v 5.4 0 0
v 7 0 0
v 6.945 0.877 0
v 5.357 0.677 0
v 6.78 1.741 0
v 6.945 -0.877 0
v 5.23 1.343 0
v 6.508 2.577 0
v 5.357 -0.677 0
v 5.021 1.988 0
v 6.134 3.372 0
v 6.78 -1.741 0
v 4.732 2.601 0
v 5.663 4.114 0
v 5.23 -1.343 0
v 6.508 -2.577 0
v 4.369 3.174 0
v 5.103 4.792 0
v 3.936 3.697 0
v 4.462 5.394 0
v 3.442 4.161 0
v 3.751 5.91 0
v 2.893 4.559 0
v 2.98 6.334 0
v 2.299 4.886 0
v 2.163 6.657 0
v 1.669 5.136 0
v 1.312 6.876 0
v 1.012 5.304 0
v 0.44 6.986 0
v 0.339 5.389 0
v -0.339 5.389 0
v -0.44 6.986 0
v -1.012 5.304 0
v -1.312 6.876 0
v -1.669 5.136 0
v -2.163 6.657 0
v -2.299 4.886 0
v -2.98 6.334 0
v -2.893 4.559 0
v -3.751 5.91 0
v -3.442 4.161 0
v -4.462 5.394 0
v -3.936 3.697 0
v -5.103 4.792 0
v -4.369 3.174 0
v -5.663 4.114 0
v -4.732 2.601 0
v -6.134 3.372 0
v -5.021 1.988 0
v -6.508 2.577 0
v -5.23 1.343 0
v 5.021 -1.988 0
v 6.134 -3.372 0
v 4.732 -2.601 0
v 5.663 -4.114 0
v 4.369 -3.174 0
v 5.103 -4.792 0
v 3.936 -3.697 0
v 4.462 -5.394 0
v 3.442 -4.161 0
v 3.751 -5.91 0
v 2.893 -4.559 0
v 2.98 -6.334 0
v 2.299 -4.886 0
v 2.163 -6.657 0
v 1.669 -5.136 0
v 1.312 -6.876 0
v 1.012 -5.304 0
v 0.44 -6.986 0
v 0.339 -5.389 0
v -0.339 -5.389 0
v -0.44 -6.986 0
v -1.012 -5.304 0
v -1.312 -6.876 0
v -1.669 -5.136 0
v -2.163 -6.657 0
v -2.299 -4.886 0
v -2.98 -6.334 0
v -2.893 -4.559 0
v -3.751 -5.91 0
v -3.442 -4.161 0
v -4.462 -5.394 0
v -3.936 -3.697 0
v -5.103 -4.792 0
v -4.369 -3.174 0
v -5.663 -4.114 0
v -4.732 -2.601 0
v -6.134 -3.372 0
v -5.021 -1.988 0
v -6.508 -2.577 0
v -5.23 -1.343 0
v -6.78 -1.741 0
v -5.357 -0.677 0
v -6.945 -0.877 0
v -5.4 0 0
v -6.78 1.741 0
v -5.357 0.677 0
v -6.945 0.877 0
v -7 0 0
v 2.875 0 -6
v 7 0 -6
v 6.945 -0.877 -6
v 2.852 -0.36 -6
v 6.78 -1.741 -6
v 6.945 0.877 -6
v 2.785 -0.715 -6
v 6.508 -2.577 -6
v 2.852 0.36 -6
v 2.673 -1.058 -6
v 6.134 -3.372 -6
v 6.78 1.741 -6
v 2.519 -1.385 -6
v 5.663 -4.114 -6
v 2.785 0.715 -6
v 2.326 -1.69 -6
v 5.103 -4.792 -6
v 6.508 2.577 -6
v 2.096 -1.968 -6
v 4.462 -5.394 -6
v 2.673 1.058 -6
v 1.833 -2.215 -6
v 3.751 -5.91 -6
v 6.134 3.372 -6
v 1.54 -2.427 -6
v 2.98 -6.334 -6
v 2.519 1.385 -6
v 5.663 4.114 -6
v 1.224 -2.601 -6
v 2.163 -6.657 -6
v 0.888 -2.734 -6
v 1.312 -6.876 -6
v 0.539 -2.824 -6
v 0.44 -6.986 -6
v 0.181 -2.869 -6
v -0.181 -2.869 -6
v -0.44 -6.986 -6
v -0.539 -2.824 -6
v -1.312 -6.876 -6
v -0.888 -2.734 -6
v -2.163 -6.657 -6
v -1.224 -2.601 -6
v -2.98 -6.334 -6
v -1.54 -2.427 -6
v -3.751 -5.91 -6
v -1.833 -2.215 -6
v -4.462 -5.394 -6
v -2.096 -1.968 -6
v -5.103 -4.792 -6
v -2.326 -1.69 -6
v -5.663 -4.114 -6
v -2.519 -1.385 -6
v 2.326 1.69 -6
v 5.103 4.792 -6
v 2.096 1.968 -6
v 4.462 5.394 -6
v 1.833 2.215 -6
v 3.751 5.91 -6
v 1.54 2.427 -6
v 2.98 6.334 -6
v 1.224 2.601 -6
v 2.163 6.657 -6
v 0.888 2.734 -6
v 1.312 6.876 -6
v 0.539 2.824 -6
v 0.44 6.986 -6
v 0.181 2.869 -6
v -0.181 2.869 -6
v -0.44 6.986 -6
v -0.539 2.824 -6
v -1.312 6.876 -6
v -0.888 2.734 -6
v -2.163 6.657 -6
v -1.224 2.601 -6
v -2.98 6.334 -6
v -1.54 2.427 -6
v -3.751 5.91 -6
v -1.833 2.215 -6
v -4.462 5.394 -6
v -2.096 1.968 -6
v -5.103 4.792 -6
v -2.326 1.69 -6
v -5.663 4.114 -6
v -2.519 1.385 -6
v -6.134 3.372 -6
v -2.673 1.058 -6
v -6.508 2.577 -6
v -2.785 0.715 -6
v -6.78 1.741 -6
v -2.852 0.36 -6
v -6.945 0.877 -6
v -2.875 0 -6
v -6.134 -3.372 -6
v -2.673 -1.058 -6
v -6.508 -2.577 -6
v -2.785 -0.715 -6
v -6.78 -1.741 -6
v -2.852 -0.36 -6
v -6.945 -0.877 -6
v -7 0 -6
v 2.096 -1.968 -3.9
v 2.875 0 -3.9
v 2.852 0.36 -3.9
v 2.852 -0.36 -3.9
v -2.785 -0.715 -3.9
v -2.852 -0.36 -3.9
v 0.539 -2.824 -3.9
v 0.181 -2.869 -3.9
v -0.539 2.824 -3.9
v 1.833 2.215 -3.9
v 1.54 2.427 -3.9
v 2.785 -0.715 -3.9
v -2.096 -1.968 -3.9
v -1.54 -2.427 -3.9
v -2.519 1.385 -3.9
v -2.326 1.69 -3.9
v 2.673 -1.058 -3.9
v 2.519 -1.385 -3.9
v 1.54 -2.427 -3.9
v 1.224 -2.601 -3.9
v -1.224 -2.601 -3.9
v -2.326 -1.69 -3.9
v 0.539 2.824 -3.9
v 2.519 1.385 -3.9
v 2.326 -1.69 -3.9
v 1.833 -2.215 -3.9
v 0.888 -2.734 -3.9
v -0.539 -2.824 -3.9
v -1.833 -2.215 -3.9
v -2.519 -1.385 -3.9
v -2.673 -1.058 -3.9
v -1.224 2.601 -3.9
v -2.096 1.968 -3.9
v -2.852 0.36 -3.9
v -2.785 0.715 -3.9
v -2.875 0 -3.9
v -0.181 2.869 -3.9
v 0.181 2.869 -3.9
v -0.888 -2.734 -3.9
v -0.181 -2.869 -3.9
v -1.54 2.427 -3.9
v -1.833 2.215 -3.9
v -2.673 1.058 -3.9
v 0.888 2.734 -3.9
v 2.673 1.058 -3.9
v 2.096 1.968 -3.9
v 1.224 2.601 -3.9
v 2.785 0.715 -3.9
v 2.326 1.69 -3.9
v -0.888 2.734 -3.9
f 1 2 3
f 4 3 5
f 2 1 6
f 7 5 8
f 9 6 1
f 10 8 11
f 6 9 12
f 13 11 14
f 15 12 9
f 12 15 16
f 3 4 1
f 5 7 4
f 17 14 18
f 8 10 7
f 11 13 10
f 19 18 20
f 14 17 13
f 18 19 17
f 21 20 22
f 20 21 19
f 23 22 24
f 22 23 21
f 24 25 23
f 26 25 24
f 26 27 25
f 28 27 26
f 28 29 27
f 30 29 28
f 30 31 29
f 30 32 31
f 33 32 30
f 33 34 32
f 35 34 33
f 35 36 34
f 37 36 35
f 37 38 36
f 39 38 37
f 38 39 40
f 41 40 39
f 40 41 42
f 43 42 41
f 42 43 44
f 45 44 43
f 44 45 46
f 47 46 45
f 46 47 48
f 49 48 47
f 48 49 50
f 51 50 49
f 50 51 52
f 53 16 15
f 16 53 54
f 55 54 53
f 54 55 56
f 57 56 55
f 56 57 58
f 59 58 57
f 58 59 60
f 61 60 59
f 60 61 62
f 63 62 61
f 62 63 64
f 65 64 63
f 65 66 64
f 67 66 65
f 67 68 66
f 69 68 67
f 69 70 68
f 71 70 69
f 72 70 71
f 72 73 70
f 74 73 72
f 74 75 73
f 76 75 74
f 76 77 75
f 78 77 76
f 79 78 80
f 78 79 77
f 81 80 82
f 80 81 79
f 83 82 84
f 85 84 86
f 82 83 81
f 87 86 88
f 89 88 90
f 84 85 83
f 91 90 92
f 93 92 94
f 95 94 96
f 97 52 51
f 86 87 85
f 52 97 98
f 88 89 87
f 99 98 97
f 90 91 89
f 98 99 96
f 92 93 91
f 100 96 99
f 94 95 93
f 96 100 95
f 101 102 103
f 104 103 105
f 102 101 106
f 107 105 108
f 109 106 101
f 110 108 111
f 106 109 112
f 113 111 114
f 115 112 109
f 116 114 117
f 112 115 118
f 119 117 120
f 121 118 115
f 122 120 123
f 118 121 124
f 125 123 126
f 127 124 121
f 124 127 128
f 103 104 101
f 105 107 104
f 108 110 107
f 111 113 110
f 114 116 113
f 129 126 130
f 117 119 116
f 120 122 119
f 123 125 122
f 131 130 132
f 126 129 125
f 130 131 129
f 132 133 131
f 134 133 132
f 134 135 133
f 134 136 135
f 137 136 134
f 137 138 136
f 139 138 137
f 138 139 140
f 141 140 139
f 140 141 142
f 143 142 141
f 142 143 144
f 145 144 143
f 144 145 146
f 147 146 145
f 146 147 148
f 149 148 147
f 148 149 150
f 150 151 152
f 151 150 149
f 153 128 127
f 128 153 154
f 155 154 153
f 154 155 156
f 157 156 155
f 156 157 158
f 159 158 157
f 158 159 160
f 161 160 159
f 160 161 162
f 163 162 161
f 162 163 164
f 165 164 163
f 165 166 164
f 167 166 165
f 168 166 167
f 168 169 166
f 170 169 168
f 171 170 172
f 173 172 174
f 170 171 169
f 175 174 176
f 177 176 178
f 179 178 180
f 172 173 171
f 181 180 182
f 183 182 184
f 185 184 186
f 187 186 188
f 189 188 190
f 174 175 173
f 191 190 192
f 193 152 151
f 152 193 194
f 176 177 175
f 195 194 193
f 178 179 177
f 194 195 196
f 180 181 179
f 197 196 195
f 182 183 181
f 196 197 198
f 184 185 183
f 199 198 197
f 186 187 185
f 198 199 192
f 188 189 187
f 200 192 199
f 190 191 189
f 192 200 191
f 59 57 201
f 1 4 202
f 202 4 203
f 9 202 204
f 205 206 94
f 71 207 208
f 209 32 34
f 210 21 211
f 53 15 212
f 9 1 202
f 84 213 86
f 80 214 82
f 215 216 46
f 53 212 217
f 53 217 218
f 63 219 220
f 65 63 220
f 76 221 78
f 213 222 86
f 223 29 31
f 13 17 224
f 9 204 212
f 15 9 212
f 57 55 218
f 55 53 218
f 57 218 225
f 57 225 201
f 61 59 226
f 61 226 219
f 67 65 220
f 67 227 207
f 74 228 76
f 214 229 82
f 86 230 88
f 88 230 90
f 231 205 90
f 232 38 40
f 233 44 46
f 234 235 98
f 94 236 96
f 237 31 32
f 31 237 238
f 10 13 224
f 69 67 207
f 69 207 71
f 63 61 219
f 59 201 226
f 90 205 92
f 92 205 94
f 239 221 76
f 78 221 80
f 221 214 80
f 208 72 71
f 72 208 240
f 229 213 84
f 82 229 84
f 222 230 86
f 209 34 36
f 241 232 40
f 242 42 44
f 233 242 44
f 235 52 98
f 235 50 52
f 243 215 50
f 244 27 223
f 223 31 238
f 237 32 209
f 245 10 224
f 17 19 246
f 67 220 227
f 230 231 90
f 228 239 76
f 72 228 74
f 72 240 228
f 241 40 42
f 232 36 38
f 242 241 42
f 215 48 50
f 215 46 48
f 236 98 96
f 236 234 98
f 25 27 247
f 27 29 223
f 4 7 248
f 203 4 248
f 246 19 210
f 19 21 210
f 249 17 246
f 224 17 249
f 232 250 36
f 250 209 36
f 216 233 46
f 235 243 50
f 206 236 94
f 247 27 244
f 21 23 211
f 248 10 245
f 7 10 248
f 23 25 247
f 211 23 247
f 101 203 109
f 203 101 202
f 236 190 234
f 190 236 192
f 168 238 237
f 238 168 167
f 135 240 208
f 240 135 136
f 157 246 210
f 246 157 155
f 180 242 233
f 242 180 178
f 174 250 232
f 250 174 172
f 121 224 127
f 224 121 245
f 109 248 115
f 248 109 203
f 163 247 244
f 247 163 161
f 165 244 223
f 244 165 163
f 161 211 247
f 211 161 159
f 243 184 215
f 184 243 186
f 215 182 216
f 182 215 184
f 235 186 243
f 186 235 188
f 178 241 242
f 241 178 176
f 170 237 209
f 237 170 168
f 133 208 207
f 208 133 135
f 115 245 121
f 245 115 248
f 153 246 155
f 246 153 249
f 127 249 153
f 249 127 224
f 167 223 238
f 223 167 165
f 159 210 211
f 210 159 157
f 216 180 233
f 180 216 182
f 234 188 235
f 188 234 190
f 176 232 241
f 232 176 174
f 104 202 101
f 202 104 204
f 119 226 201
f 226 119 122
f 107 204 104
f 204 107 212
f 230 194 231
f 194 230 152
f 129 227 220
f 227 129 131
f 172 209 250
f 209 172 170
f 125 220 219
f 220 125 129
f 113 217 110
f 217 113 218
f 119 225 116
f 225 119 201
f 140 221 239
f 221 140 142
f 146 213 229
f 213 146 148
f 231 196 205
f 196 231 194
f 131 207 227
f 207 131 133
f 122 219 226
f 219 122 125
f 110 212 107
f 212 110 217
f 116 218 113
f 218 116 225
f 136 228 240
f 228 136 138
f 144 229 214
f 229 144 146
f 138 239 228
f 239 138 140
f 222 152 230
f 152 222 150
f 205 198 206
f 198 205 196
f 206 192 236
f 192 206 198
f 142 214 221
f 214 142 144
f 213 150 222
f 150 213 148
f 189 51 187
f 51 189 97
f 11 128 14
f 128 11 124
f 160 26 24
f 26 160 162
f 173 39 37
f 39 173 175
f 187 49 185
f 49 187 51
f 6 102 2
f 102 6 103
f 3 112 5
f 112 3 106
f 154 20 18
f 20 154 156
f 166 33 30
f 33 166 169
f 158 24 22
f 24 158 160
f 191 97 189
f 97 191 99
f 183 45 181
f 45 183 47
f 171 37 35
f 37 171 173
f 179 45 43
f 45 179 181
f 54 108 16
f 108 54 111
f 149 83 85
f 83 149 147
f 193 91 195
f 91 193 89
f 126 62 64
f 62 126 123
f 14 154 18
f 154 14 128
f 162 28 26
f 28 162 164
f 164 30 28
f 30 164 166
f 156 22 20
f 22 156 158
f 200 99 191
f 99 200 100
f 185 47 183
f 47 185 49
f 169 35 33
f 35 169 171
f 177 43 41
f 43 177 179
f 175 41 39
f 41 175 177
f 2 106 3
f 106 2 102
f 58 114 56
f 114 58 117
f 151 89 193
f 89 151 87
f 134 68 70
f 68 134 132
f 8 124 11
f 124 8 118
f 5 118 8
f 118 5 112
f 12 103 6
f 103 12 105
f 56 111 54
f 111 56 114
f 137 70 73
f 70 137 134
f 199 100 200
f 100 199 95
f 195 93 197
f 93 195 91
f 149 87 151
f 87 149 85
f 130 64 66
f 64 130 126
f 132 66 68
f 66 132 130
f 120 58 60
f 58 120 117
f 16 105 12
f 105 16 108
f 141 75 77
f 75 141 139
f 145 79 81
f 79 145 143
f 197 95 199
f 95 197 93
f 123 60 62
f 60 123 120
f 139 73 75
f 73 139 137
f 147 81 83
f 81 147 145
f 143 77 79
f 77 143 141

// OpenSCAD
$fn = 50;


difference() {
	union() {
		translate(v = [0, 0, -6.0000000000]) {
			cylinder(h = 6, r = 7.0000000000);
		}
		cylinder(h = 0, r = 10.0000000000);
	}
	union() {
		translate(v = [0, 0, 0]) {
			rotate(a = [0, 0, 0]) {
				difference() {
					union() {
						#translate(v = [0, 0, -6.0000000000]) {
							cylinder(h = 6, r = 2.6000000000);
						}
						#translate(v = [0, 0, -3.9000000000]) {
							cylinder(h = 3.9000000000, r1 = 2.8750000000, r2 = 5.4000000000);
						}
						#translate(v = [0, 0, -6.0000000000]) {
							cylinder(h = 6, r = 2.8750000000);
						}
						#translate(v = [0, 0, -6.0000000000]) {
							cylinder(h = 6, r = 2.6000000000);
						}
					}
					union();
				}
			}
		}
	}
}
